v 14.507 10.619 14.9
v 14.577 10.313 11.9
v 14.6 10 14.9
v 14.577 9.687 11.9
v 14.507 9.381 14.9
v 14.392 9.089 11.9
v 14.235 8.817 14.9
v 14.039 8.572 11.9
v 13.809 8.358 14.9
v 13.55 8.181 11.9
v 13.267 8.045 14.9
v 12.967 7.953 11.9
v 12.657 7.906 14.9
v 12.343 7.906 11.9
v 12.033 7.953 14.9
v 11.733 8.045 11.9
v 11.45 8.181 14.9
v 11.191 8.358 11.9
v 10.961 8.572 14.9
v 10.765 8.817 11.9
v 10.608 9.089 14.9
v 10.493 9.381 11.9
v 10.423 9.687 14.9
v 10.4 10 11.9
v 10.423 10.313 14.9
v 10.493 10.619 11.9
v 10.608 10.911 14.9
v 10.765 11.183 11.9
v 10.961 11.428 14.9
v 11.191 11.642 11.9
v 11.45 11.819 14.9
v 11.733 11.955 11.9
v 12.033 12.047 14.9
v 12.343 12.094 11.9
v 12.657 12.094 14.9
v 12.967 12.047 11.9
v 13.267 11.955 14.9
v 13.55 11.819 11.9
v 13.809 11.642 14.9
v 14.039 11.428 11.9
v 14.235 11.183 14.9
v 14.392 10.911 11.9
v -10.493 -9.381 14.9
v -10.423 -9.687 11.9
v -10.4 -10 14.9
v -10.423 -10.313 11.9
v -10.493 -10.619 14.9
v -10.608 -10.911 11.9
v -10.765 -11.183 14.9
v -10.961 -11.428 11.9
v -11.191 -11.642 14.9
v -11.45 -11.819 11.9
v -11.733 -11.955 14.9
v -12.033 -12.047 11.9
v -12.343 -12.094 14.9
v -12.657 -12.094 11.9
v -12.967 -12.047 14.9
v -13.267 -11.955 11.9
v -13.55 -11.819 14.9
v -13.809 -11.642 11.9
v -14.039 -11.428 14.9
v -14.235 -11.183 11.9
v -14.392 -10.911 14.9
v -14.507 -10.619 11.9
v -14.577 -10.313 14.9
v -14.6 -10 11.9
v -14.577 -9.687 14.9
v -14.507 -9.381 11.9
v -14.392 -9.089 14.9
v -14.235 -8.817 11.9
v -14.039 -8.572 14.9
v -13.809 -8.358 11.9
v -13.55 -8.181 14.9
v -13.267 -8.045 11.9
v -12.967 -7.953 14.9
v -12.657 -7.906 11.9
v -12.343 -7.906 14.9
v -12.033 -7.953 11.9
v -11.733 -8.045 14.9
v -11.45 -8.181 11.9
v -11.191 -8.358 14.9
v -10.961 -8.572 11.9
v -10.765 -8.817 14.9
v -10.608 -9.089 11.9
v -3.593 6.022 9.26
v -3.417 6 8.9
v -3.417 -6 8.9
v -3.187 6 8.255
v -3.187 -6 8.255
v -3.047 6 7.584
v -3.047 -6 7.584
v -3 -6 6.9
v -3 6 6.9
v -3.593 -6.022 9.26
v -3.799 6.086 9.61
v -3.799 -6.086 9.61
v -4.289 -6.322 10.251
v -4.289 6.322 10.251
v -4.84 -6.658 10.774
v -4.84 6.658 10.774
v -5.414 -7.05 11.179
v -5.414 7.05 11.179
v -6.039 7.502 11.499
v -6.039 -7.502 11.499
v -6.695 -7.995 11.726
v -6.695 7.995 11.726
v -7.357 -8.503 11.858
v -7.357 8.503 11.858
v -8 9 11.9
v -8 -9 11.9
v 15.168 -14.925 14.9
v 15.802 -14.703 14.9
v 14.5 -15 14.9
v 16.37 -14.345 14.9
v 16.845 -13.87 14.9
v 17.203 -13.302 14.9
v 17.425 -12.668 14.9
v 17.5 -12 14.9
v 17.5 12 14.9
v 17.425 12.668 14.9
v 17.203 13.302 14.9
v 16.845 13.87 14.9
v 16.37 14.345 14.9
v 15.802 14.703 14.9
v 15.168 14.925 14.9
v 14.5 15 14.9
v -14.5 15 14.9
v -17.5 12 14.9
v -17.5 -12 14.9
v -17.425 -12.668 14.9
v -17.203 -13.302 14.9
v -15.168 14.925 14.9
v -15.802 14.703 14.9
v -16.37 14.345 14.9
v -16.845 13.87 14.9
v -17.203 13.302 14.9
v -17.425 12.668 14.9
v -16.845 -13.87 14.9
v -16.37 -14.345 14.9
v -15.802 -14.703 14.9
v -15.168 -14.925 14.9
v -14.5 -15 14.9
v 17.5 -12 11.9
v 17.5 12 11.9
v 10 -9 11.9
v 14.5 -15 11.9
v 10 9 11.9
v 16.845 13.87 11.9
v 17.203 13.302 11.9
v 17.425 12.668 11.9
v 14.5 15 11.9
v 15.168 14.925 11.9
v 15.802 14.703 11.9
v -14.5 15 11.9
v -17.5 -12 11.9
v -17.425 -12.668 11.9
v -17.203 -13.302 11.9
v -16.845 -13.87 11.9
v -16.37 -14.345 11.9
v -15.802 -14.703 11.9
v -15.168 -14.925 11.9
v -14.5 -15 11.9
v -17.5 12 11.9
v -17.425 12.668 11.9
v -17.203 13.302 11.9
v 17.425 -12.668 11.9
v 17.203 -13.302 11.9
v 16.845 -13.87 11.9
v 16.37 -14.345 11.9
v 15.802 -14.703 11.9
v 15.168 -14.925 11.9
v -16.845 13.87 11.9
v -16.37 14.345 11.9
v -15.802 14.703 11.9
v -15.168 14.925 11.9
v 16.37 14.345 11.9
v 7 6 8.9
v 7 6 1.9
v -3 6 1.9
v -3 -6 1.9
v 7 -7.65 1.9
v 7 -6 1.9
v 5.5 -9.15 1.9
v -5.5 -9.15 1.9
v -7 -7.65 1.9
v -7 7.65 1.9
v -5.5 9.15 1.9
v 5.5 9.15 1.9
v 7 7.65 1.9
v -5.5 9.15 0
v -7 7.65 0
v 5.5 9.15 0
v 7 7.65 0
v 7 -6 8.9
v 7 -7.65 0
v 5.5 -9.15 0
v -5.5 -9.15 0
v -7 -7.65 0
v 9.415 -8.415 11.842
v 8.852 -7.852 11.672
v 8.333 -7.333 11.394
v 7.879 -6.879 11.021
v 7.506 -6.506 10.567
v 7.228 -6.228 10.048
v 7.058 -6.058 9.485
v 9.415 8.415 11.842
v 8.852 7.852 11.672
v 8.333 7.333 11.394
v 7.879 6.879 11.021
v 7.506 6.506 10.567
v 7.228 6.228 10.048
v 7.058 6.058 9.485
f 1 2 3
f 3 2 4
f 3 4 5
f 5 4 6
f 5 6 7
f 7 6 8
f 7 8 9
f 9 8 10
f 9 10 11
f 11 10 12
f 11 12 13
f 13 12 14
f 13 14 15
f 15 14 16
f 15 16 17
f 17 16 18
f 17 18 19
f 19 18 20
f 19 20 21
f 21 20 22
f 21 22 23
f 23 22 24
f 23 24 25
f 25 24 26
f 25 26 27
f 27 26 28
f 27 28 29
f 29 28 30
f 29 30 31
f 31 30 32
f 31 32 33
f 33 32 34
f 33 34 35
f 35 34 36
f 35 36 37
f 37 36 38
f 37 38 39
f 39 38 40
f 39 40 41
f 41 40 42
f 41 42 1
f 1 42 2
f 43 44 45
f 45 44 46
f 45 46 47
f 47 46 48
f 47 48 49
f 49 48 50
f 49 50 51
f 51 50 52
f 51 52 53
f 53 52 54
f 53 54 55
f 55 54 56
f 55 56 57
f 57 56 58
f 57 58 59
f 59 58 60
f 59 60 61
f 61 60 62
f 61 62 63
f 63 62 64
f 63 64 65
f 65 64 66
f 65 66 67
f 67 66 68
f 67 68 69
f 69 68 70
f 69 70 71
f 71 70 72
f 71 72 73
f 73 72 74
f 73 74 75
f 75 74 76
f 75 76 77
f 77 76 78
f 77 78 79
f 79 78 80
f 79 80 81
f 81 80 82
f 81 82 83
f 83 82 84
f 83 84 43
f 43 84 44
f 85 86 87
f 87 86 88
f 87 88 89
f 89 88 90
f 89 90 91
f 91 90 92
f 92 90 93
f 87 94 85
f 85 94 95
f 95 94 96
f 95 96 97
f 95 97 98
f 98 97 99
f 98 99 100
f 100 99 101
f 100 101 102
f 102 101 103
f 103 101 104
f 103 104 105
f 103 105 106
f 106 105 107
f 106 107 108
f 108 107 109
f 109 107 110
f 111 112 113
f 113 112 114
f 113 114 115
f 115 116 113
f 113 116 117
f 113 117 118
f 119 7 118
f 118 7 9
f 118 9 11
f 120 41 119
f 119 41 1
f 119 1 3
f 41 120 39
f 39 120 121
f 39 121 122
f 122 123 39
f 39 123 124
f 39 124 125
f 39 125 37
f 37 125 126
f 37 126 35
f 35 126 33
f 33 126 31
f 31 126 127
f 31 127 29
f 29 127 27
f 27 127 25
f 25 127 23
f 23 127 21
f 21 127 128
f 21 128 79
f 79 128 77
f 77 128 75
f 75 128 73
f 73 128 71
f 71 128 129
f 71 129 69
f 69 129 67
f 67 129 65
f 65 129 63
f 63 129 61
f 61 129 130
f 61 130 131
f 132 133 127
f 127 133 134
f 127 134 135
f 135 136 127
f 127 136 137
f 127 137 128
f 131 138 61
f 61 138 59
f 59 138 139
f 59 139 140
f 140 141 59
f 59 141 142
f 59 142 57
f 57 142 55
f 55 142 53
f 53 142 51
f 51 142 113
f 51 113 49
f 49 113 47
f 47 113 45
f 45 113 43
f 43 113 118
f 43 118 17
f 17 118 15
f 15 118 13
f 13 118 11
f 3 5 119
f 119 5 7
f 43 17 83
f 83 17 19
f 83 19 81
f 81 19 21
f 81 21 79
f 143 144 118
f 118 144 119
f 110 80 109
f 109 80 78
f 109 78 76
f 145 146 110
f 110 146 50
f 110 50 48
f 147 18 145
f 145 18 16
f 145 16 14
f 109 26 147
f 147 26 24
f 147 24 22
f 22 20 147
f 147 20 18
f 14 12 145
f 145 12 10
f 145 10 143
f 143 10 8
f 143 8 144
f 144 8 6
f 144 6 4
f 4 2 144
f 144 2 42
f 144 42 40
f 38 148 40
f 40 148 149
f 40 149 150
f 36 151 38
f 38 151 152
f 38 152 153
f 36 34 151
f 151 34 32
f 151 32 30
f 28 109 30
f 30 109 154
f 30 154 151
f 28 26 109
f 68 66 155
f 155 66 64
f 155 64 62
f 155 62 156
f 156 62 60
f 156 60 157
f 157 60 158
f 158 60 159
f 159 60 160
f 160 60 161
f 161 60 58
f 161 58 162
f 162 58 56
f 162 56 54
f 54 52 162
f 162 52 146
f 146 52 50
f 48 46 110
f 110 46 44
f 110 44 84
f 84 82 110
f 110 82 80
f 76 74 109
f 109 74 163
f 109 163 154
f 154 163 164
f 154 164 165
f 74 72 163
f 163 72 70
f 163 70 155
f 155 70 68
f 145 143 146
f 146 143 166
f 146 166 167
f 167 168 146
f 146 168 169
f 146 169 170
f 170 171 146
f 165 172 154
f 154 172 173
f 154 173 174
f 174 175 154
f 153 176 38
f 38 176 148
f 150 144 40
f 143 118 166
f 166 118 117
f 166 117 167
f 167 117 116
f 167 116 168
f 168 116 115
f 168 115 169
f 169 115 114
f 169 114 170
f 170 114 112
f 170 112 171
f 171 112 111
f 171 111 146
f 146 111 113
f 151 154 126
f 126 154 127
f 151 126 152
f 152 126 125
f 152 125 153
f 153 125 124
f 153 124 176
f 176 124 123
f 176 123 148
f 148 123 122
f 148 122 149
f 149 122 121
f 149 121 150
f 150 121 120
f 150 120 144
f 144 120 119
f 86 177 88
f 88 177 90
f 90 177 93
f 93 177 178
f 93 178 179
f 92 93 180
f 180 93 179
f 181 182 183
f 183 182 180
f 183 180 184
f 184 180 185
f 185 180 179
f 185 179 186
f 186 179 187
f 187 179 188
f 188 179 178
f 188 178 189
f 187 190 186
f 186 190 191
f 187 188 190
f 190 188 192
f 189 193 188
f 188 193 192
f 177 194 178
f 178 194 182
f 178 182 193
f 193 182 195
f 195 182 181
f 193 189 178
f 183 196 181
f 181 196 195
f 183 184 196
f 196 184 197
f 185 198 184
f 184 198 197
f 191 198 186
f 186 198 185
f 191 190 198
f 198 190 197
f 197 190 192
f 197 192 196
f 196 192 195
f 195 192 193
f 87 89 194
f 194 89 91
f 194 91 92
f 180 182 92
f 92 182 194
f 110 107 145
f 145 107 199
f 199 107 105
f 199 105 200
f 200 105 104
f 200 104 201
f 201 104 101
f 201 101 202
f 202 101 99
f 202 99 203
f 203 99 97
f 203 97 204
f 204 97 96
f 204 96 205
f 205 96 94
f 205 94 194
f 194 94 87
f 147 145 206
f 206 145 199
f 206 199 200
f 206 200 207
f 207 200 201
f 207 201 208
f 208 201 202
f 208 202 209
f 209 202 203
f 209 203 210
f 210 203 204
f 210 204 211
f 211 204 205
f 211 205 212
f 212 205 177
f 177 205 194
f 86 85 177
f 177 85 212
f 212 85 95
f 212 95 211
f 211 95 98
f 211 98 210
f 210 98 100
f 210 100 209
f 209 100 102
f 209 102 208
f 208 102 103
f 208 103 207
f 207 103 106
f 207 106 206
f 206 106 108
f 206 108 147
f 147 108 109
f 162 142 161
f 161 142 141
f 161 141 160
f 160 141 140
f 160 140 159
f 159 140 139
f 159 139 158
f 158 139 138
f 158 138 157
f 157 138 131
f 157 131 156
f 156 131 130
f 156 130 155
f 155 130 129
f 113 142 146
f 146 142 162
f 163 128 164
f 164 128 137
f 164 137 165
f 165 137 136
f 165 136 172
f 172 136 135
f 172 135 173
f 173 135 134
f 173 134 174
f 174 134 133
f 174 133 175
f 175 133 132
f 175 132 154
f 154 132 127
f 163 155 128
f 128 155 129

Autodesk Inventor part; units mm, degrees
ref_plane "YZ Plane" through (0, 0, 0) normal (1, 0, 0) x (0, 1, 0)
ref_plane "XZ Plane" through (0, 0, 0) normal (0, 1, 0) x (-1, 0, 0)
ref_plane "XY Plane" through (0, 0, 0) normal (0, 0, 1) x (1, 0, 0)
sketch "Skizze1" plane through (0, 0, 0) normal (0, 0, 1) x (1, 0, 0)
  line L0 (-7, 9.15) -> (7, 9.15)
  line L1 (7, 9.15) -> (7, -9.15)
  line L2 (7, -9.15) -> (-7, -9.15)
  line L3 (-7, -9.15) -> (-7, 9.15)
  line L4 (-7, 9.15) -> (7, -9.15) construction
  line L5 (7, 9.15) -> (-7, -9.15) construction
  point P0 (0, 0)
  dimension "d0" = 14
  dimension "d1" = 18.3
extrude "Extrusion1" add sketch "Skizze1" along normal blind 1.9
chamfer "Fasen1" distance 1.5 angle 45 4 edges at (-7, -9.15, 0.95) (7, -9.15, 0.95) (7, 9.15, 0.95) (-7, 9.15, 0.95)
sketch "Skizze2" plane through (0, 0, 1.9) normal (0, 0, 1) x (1, 0, 0)
  line L0 (7, -6) -> (-3, -6)
  line L1 (-3, -6) -> (-3, 6)
  line L2 (-3, 6) -> (7, 6)
  line L3 (7, 6) -> (7, -6)
  point P0 (0, 0)
  point P1 (7, 7.65)
  point P2 (-3, 0)
  dimension "d7" = 10
  dimension "d8" = 12
extrude "Extrusion2" add sketch "Skizze2" along normal blind 10
sketch "Skizze3" plane through (0, 0, 11.9) normal (0, 0, 1) x (1, 0, 0)
  line L0 (-17.5, 15) -> (17.5, 15)
  line L1 (17.5, 15) -> (17.5, -15)
  line L2 (17.5, -15) -> (-17.5, -15)
  line L3 (-17.5, -15) -> (-17.5, 15)
  line L4 (-17.5, 15) -> (17.5, -15) construction
  line L5 (17.5, 15) -> (-17.5, -15) construction
  point P0 (0, 0)
  dimension "d11" = 35
  dimension "d12" = 30
extrude "Extrusion3" add sketch "Skizze3" along normal blind 3
sketch "Skizze4" plane through (0, 0, 11.9) normal (0, 0, -1) x (-1, 0, 0)
  line L0 (12.5, -10) -> (-12.5, -10)
  line L1 (-12.5, -10) -> (-12.5, 10)
  line L2 (-12.5, 10) -> (12.5, 10)
  line L3 (12.5, 10) -> (12.5, -10)
  line L4 (12.5, -10) -> (-12.5, 10) construction
  line L5 (-12.5, -10) -> (12.5, 10) construction
  point P0 (0, 0)
  dimension "d15" = 25
  dimension "d16" = 20
hole "Bohrung1" at (-12.5, -10, 11.9) at (12.5, 10, 11.9) direction (0, 0, 1) diameter 4.2 end through all
fillet "Rundung1" radius 5 1 edges at (-3, 0, 11.9)
fillet "Rundung2" radius 3 3 edges at (2, -6, 11.9) (2, 6, 11.9) (7, 0, 11.9)
fillet "Rundung3" radius 3 4 edges at (-17.5, -15, 13.4) (-17.5, 15, 13.4) (17.5, 15, 13.4) (17.5, -15, 13.4)
properties part number "hotshouh mount"
